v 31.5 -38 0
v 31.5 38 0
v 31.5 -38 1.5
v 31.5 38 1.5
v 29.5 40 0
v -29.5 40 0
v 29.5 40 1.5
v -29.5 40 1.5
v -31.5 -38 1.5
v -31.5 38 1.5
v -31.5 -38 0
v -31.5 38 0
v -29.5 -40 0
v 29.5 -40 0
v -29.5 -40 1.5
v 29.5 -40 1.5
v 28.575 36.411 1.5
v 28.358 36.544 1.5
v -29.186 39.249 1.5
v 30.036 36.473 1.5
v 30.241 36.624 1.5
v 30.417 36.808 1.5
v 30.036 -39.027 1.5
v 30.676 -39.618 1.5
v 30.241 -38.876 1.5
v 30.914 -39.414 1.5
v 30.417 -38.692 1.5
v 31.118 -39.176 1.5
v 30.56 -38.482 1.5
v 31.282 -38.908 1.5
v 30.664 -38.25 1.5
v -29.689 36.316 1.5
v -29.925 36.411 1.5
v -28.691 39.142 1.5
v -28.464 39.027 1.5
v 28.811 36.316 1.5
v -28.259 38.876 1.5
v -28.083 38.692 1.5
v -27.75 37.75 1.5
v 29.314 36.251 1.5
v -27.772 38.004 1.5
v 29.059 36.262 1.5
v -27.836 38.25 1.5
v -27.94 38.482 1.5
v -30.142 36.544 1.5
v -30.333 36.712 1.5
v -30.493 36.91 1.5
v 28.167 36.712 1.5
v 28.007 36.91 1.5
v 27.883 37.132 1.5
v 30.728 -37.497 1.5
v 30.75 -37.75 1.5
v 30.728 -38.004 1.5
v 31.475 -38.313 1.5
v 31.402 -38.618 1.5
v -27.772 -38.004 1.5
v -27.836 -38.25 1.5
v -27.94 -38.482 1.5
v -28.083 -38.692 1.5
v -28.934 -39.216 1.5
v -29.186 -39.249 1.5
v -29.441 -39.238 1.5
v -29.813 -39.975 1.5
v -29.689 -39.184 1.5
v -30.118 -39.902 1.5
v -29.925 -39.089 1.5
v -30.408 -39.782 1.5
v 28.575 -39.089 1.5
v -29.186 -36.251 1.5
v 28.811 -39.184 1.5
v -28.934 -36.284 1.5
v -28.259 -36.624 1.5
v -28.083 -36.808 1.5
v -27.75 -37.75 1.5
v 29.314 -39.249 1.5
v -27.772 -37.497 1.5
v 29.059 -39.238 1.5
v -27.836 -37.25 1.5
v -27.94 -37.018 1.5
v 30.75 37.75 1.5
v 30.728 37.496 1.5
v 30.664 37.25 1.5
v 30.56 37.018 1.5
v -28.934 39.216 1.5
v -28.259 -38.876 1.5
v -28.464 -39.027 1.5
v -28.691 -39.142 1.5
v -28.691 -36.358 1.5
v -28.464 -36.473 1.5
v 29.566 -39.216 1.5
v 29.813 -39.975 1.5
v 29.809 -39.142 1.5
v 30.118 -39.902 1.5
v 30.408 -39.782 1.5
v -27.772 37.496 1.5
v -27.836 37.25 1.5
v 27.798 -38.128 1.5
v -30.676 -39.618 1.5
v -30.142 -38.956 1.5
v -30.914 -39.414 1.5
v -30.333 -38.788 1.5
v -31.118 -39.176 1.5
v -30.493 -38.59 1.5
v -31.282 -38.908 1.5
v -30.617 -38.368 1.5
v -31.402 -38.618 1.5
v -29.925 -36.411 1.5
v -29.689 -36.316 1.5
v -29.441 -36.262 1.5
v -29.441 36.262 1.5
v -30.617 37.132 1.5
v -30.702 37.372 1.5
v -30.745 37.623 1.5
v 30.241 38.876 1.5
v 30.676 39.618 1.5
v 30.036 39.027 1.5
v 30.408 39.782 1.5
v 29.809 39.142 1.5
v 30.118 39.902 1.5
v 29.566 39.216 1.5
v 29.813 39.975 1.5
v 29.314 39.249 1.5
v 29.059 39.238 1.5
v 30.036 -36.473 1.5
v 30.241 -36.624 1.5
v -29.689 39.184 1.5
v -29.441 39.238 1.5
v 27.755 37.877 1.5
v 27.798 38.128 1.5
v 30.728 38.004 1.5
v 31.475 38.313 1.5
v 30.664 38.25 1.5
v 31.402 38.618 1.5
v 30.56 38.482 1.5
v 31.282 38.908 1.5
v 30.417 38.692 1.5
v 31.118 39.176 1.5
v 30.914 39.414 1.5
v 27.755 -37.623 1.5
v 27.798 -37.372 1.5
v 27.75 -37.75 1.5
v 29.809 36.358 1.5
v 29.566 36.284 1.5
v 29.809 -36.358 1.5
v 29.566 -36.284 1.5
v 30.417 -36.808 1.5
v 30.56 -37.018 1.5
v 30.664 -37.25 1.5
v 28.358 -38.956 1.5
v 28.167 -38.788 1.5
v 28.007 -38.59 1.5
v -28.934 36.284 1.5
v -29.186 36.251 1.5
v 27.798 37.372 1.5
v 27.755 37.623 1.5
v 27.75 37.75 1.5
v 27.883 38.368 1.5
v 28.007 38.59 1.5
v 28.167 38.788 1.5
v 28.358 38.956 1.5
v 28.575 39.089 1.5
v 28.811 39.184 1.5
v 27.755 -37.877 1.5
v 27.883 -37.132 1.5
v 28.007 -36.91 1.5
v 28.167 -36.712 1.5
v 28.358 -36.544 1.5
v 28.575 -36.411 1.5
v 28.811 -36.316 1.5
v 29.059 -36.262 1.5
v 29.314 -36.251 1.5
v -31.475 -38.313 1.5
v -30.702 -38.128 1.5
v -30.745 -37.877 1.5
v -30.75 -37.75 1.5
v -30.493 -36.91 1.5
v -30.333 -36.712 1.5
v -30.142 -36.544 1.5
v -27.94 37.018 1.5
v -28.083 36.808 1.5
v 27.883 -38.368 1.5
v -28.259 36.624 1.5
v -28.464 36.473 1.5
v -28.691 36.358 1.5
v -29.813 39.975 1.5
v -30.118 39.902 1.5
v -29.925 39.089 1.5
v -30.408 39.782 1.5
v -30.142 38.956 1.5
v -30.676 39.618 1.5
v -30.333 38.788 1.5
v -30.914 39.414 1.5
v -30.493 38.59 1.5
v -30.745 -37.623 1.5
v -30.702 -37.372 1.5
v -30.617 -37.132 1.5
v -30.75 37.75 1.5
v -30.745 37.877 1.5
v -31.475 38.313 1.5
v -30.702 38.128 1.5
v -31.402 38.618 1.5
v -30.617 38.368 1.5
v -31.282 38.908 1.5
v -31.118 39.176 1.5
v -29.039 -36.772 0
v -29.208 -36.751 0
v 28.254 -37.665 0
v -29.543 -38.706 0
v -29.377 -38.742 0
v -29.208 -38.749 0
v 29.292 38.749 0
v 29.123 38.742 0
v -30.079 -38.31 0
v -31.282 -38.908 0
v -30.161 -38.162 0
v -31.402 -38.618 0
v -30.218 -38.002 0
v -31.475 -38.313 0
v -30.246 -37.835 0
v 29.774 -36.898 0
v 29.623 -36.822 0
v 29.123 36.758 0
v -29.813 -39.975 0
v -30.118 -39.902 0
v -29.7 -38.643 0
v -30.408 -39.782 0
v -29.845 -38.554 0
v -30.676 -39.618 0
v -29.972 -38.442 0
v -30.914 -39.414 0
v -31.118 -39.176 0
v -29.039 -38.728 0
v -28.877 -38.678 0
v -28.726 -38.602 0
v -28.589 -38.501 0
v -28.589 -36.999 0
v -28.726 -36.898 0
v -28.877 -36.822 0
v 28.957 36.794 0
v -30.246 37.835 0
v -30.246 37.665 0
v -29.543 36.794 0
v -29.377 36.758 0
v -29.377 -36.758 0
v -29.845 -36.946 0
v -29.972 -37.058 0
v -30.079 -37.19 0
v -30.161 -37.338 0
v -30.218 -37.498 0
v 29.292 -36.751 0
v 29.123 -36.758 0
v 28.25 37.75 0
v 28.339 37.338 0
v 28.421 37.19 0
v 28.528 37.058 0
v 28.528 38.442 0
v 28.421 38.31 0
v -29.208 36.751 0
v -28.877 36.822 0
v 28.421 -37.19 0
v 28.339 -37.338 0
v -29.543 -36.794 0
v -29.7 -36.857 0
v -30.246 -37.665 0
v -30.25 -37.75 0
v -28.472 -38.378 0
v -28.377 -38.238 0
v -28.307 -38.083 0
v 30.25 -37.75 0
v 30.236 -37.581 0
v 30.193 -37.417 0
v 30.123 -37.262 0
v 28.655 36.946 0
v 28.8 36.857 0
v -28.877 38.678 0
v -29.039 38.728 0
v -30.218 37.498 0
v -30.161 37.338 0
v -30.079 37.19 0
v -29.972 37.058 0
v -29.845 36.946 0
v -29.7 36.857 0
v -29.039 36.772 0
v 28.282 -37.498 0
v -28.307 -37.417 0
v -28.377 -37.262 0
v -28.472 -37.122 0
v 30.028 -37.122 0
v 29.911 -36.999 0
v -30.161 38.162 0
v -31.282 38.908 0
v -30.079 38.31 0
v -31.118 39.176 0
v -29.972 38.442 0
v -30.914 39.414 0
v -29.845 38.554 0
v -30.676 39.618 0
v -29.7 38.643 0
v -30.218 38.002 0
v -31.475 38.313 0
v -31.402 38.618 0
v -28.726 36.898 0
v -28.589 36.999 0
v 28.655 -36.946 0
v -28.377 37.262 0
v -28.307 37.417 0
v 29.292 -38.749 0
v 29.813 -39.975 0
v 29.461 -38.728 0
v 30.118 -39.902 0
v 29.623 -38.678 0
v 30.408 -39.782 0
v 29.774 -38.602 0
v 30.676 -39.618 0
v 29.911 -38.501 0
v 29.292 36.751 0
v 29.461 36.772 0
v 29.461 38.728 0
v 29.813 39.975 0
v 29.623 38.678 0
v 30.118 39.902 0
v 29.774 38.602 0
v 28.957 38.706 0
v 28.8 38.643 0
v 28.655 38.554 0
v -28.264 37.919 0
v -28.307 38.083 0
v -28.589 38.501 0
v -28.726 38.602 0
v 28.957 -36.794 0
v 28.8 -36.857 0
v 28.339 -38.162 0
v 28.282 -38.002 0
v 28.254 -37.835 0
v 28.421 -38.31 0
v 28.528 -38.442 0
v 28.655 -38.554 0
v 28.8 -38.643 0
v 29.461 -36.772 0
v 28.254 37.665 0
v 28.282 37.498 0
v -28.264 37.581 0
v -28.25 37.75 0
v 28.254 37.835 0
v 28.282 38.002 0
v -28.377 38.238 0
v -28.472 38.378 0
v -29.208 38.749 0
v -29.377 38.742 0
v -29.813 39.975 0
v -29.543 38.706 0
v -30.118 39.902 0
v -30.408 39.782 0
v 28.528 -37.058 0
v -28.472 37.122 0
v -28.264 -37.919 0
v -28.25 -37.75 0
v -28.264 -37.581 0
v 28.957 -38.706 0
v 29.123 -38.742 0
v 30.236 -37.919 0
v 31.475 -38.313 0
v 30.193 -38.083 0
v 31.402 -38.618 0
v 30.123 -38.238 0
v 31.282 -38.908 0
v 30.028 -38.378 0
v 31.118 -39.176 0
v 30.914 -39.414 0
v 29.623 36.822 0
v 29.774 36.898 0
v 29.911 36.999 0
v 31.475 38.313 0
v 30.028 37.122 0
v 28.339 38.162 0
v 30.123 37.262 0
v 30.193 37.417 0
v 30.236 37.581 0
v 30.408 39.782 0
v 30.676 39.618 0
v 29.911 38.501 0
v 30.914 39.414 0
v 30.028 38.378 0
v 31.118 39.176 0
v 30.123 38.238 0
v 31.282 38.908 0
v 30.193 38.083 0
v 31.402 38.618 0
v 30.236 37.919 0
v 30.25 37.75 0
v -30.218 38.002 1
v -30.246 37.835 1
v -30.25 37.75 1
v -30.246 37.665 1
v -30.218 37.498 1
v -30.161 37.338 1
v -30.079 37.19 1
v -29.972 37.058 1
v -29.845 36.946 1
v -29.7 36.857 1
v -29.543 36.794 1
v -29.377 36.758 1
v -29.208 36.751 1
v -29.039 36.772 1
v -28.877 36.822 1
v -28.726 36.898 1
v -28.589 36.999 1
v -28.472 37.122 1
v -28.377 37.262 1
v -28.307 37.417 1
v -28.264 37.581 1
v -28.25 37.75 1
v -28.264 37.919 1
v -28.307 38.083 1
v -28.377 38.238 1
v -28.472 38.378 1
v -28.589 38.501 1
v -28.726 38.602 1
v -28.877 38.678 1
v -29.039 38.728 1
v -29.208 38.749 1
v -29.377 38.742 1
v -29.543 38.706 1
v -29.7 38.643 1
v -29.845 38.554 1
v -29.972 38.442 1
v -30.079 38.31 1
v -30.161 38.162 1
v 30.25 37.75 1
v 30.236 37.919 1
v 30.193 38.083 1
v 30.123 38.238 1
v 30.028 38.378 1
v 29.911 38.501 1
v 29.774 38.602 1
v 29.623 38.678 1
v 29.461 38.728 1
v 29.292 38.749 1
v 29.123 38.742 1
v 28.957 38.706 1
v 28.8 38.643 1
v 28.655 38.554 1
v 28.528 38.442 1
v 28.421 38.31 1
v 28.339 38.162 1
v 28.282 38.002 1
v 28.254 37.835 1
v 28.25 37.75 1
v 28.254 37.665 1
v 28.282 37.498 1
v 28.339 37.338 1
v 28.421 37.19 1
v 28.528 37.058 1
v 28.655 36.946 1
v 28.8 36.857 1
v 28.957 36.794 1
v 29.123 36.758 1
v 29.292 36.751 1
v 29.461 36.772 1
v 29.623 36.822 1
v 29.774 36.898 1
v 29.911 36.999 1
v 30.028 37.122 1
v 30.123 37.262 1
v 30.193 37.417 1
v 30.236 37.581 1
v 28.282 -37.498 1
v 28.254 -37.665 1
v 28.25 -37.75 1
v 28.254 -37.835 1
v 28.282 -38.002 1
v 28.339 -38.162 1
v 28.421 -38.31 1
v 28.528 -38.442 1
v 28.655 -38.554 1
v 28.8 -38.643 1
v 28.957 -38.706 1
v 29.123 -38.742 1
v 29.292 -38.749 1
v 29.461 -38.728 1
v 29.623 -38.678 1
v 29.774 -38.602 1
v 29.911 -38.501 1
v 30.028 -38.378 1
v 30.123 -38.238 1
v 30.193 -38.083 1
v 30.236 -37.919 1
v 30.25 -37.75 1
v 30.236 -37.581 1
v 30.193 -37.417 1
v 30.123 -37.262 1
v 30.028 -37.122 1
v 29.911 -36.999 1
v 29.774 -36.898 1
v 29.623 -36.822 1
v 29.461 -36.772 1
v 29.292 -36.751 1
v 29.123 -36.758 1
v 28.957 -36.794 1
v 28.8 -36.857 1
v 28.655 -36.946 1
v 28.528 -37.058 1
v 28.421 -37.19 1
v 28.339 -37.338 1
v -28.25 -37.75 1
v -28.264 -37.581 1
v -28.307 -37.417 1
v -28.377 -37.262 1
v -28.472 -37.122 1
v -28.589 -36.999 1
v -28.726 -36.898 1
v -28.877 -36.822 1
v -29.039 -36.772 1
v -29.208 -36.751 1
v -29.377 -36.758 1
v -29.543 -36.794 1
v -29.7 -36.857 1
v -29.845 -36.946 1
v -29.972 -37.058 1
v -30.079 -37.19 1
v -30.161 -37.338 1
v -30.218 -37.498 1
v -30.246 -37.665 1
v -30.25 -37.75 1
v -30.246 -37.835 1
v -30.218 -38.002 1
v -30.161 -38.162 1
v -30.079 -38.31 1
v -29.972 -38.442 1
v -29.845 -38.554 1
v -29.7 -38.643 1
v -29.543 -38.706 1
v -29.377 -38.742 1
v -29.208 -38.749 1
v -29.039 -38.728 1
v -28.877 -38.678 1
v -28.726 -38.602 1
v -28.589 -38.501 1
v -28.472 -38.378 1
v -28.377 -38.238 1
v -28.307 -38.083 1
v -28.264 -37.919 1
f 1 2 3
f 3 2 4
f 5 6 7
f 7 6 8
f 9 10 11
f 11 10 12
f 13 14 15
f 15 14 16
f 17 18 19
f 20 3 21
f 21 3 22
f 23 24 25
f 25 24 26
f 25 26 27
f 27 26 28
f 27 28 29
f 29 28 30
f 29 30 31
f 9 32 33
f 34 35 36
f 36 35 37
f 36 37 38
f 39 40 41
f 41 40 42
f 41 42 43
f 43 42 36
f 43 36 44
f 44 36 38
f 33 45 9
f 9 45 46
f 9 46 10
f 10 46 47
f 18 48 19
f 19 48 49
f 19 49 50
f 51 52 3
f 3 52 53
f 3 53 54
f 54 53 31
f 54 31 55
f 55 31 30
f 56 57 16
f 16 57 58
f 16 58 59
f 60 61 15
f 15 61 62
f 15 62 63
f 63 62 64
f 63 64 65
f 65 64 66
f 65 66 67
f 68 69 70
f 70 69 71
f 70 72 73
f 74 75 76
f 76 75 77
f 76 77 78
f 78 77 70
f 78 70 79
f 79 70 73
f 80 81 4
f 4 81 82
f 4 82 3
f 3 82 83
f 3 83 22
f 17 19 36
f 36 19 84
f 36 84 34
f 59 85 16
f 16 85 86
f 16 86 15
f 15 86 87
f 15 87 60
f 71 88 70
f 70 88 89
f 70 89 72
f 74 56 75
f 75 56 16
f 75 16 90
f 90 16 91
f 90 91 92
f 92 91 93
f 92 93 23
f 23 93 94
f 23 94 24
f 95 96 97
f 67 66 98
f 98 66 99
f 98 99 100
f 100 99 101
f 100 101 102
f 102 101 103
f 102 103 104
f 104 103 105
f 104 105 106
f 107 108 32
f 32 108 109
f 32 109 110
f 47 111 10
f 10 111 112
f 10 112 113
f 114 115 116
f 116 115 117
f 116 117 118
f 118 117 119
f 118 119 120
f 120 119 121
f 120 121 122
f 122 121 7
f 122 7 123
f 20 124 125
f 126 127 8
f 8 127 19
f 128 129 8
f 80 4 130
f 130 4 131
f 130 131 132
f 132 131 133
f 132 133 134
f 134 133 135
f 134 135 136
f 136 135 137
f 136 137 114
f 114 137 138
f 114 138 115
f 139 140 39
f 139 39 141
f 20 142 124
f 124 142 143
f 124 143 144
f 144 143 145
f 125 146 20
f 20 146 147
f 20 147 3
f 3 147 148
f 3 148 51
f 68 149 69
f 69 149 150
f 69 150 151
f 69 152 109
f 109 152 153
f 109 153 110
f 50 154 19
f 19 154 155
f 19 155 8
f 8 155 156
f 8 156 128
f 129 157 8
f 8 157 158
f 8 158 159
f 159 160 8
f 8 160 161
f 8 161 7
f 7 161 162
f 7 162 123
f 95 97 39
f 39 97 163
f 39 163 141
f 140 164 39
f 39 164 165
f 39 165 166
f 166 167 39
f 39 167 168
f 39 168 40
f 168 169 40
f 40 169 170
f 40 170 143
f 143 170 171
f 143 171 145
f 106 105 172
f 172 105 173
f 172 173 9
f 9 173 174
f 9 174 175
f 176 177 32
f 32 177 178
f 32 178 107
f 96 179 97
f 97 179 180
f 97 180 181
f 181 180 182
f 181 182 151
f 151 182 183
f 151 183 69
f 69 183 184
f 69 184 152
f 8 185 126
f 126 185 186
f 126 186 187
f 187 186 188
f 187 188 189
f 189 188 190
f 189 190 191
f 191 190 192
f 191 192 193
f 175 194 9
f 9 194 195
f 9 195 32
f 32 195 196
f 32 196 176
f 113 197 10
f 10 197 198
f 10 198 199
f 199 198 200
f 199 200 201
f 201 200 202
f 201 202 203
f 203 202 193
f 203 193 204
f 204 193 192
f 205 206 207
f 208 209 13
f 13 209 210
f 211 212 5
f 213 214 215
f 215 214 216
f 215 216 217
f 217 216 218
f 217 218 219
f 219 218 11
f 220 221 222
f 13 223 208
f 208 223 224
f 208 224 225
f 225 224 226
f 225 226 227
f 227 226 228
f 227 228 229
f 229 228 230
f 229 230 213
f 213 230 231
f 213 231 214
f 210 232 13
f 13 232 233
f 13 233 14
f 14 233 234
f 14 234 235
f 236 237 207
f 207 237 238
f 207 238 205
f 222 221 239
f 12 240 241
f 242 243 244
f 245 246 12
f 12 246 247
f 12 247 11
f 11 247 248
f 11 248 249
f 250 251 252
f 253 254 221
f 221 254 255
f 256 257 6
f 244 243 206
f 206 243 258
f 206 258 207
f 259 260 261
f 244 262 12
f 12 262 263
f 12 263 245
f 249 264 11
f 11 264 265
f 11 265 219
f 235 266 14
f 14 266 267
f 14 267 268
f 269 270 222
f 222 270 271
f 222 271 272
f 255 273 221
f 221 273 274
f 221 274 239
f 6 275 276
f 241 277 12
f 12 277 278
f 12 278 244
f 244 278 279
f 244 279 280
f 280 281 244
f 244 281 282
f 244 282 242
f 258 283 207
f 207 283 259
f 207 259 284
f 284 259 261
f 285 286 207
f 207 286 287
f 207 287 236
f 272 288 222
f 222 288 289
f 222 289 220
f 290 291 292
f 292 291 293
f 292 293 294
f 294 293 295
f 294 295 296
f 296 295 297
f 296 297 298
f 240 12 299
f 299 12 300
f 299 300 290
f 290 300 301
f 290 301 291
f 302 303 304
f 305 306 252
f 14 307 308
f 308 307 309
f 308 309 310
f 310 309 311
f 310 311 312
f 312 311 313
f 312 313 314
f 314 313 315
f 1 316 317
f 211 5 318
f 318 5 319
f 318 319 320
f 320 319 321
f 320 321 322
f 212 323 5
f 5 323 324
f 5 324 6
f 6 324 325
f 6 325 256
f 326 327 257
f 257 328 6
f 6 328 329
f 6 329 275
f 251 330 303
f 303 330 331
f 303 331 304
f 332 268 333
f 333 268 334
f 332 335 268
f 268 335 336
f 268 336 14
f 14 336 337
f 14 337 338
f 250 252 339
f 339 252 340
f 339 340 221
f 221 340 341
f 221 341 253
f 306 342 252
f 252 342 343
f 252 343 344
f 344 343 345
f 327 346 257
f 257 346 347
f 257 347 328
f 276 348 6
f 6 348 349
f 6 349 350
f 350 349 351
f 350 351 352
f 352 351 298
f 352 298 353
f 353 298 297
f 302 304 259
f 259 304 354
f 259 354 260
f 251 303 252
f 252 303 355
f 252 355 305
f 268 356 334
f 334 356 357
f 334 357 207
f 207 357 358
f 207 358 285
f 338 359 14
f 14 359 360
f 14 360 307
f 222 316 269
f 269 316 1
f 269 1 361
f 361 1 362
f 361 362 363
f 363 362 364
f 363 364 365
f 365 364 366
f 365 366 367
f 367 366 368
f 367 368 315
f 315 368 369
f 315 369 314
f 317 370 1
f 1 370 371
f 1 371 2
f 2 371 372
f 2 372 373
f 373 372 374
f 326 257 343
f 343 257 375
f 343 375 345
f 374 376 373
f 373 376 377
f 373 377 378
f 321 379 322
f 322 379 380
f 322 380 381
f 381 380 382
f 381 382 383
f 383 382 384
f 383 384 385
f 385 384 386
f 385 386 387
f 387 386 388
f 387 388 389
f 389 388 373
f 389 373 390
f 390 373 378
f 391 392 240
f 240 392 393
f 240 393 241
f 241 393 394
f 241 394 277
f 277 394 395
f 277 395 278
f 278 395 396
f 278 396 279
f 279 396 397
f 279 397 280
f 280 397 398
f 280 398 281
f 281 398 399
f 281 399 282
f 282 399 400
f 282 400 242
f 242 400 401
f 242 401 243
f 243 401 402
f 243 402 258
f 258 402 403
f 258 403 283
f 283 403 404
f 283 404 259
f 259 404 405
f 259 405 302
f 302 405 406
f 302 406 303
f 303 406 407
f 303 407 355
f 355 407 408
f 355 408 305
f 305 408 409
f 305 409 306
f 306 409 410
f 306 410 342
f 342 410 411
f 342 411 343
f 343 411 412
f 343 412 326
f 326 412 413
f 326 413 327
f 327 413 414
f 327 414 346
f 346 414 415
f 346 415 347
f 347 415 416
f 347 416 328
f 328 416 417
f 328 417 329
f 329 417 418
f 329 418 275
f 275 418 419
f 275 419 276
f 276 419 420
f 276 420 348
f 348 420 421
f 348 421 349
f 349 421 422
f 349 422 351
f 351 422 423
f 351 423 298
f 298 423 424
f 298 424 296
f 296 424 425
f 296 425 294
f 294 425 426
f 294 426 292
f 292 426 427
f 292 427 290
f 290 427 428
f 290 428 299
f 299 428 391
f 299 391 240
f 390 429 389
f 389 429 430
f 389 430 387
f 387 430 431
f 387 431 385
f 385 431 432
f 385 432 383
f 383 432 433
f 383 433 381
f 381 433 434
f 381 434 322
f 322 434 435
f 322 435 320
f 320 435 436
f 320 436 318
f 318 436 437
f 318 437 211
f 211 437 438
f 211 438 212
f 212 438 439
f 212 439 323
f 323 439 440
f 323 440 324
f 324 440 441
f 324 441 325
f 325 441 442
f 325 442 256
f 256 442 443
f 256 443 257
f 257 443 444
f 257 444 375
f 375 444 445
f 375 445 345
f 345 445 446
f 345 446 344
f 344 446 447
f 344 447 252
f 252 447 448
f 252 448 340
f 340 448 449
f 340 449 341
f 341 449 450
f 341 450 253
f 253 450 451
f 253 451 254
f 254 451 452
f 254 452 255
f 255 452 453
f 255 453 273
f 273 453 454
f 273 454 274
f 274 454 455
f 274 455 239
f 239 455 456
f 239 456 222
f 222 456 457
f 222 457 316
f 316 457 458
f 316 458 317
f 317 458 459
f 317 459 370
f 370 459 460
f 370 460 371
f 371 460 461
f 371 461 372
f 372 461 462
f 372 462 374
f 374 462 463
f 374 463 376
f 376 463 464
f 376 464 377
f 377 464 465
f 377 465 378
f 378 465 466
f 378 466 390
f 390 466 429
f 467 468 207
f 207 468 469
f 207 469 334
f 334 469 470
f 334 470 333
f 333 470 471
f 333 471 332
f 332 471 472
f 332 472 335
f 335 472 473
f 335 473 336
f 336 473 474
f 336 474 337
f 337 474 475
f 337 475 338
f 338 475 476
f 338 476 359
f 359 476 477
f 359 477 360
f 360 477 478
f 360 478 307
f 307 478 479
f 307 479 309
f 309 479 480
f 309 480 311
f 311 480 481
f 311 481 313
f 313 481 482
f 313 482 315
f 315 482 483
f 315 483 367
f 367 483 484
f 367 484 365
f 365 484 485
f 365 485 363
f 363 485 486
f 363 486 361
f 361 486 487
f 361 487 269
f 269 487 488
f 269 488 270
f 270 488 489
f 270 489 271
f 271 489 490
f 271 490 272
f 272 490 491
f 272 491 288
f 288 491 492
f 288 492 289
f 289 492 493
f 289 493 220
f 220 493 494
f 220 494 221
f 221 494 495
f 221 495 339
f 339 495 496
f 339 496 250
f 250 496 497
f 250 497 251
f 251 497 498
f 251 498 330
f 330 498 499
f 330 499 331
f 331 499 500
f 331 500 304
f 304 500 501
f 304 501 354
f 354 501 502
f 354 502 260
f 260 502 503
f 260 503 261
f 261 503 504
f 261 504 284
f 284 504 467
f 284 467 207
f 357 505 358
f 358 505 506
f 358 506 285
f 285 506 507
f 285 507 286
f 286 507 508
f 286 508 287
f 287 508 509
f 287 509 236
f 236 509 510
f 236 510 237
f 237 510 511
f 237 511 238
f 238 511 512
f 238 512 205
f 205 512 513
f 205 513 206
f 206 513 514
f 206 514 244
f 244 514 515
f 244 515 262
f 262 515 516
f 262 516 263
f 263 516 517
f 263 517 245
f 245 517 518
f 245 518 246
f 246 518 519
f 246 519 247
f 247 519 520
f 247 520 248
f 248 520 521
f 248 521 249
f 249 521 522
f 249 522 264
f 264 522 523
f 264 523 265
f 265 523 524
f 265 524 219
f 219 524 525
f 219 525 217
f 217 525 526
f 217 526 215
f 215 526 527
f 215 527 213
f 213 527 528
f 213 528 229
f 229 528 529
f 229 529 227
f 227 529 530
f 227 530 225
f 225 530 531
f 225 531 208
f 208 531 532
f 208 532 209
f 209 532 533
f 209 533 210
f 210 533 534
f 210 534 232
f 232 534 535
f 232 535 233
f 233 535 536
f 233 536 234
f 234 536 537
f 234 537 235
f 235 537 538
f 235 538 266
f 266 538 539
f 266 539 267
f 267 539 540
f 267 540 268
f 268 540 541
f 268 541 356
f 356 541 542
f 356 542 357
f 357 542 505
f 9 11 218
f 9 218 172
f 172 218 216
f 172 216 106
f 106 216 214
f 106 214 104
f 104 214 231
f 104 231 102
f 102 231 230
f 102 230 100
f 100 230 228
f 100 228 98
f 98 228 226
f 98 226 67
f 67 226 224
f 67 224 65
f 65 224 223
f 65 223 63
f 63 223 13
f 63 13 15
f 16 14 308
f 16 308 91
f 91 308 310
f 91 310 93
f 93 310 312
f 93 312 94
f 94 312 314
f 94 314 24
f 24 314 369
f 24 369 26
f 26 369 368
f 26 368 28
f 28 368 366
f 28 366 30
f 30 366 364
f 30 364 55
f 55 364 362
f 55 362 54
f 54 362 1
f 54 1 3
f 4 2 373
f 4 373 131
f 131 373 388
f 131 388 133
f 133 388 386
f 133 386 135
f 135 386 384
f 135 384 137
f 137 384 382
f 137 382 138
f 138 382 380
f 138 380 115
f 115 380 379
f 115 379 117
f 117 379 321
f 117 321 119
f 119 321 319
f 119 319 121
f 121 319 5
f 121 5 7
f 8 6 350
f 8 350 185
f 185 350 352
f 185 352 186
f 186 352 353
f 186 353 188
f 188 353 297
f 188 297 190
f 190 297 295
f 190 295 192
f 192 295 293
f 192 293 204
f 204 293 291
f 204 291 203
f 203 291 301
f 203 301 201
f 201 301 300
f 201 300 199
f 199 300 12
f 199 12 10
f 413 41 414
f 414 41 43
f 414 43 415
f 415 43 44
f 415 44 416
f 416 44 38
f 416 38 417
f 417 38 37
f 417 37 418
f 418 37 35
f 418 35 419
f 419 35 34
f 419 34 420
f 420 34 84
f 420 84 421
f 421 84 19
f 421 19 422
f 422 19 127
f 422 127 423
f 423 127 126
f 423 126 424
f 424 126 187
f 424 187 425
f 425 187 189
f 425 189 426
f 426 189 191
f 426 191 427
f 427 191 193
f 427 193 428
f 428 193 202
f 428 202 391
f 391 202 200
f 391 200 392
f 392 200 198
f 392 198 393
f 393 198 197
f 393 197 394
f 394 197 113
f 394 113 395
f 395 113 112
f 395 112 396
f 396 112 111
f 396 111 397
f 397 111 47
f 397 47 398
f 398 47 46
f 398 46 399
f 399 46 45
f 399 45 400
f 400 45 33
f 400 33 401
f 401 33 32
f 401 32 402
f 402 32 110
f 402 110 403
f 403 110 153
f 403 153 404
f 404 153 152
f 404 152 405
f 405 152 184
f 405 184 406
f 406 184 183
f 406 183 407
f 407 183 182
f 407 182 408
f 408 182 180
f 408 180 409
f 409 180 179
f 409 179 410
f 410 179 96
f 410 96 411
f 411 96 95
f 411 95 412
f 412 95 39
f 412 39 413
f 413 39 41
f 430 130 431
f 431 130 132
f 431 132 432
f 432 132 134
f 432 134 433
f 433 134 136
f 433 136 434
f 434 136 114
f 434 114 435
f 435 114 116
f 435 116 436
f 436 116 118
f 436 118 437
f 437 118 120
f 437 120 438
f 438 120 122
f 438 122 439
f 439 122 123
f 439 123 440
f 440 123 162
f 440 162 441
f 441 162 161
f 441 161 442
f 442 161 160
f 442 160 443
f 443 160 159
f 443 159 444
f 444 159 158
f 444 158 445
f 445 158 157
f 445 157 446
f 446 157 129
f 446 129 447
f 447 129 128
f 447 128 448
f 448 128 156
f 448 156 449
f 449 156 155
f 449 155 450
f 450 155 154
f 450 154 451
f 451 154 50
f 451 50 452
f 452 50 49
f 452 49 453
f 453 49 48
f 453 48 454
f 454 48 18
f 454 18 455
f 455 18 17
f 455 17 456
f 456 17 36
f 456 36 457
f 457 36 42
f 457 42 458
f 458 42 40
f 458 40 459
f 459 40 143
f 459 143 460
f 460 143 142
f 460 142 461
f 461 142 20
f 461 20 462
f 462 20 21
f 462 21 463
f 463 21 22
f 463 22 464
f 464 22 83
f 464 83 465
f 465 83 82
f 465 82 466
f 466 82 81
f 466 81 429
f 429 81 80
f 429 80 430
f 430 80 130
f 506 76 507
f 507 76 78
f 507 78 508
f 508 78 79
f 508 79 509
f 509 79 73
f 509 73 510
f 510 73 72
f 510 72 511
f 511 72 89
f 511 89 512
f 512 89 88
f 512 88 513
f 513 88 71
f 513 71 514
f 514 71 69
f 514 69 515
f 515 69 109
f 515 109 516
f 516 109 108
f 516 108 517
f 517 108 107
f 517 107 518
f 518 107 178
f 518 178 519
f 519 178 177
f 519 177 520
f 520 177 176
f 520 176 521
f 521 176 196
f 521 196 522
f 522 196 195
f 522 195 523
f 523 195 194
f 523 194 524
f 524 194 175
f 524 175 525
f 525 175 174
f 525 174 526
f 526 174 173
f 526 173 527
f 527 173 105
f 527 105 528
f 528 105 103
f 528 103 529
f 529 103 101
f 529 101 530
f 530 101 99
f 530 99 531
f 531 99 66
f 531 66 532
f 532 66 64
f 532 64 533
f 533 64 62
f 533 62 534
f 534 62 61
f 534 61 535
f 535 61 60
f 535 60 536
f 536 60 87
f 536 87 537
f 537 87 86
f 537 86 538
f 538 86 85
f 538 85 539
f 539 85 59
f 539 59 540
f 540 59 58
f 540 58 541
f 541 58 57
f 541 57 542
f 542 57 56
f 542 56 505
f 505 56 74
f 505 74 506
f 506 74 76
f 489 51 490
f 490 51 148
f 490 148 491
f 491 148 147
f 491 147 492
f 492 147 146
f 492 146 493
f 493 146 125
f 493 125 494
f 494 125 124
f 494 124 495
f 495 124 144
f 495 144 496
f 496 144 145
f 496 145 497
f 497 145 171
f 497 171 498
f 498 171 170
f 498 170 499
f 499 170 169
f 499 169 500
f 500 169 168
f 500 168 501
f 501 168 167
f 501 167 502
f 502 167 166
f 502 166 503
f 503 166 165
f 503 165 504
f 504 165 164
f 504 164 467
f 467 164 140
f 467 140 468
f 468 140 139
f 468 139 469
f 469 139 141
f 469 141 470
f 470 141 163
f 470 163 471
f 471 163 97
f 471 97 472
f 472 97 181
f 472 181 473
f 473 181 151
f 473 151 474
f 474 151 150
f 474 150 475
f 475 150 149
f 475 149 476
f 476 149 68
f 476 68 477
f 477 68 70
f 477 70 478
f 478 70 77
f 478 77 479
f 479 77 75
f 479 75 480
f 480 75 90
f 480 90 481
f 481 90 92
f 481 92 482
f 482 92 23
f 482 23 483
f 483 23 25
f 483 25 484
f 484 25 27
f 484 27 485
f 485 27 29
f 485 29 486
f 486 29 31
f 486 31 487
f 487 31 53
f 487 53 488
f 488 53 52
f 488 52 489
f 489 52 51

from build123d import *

# Parameters (mm, degrees)
IZIM1_W                     = 63
IZIM1_H                     = 80
Y_KSEKLIK_EKSTR_ZYON1_DEPTH = 1.5
IZIM2_R                     = 1
KES_EKSTR_ZYON1_DEPTH       = 1.5
RADYUS1_R                   = 2
PAH1_SIZE                   = 0.5


with BuildPart() as part:
    # Çizim1 → Yükseklik-Ekstrüzyon1 (new body)
    with BuildSketch(Plane.XY):
        Rectangle(IZIM1_W, IZIM1_H)
    extrude(amount=Y_KSEKLIK_EKSTR_ZYON1_DEPTH)

    # Çizim2 → Kes-Ekstrüzyon1 (cut)
    with BuildSketch(Plane.XY.offset(1.5)):
        with Locations((-29.25, 37.75)):
            Circle(IZIM2_R)
        with Locations(Location((29.25, 37.75, 0), (0, 0, 180))):
            Circle(IZIM2_R)
        with Locations((29.25, -37.75)):
            Circle(IZIM2_R)
        with Locations(Location((-29.25, -37.75, 0), (0, 0, 180))):
            Circle(IZIM2_R)
    extrude(amount=-KES_EKSTR_ZYON1_DEPTH, mode=Mode.SUBTRACT)

    # Radyus1
    radyus1_edges = [part.edges().sort_by_distance(p)[0] for p in [
        (31.5, -40, 0.75),
        (-31.5, -40, 0.75),
        (-31.5, 40, 0.75),
        (31.5, 40, 0.75),
    ]]
    fillet(radyus1_edges, radius=RADYUS1_R)

    # Pah1
    pah1_edges = [part.edges().sort_by_distance(p)[0] for p in [
        (-28.25, -37.75, 1.5),
        (28.25, -37.75, 1.5),
        (30.25, 37.75, 1.5),
        (-30.25, 37.75, 1.5),
    ]]
    chamfer(pah1_edges, length=PAH1_SIZE)


solid = part.part
